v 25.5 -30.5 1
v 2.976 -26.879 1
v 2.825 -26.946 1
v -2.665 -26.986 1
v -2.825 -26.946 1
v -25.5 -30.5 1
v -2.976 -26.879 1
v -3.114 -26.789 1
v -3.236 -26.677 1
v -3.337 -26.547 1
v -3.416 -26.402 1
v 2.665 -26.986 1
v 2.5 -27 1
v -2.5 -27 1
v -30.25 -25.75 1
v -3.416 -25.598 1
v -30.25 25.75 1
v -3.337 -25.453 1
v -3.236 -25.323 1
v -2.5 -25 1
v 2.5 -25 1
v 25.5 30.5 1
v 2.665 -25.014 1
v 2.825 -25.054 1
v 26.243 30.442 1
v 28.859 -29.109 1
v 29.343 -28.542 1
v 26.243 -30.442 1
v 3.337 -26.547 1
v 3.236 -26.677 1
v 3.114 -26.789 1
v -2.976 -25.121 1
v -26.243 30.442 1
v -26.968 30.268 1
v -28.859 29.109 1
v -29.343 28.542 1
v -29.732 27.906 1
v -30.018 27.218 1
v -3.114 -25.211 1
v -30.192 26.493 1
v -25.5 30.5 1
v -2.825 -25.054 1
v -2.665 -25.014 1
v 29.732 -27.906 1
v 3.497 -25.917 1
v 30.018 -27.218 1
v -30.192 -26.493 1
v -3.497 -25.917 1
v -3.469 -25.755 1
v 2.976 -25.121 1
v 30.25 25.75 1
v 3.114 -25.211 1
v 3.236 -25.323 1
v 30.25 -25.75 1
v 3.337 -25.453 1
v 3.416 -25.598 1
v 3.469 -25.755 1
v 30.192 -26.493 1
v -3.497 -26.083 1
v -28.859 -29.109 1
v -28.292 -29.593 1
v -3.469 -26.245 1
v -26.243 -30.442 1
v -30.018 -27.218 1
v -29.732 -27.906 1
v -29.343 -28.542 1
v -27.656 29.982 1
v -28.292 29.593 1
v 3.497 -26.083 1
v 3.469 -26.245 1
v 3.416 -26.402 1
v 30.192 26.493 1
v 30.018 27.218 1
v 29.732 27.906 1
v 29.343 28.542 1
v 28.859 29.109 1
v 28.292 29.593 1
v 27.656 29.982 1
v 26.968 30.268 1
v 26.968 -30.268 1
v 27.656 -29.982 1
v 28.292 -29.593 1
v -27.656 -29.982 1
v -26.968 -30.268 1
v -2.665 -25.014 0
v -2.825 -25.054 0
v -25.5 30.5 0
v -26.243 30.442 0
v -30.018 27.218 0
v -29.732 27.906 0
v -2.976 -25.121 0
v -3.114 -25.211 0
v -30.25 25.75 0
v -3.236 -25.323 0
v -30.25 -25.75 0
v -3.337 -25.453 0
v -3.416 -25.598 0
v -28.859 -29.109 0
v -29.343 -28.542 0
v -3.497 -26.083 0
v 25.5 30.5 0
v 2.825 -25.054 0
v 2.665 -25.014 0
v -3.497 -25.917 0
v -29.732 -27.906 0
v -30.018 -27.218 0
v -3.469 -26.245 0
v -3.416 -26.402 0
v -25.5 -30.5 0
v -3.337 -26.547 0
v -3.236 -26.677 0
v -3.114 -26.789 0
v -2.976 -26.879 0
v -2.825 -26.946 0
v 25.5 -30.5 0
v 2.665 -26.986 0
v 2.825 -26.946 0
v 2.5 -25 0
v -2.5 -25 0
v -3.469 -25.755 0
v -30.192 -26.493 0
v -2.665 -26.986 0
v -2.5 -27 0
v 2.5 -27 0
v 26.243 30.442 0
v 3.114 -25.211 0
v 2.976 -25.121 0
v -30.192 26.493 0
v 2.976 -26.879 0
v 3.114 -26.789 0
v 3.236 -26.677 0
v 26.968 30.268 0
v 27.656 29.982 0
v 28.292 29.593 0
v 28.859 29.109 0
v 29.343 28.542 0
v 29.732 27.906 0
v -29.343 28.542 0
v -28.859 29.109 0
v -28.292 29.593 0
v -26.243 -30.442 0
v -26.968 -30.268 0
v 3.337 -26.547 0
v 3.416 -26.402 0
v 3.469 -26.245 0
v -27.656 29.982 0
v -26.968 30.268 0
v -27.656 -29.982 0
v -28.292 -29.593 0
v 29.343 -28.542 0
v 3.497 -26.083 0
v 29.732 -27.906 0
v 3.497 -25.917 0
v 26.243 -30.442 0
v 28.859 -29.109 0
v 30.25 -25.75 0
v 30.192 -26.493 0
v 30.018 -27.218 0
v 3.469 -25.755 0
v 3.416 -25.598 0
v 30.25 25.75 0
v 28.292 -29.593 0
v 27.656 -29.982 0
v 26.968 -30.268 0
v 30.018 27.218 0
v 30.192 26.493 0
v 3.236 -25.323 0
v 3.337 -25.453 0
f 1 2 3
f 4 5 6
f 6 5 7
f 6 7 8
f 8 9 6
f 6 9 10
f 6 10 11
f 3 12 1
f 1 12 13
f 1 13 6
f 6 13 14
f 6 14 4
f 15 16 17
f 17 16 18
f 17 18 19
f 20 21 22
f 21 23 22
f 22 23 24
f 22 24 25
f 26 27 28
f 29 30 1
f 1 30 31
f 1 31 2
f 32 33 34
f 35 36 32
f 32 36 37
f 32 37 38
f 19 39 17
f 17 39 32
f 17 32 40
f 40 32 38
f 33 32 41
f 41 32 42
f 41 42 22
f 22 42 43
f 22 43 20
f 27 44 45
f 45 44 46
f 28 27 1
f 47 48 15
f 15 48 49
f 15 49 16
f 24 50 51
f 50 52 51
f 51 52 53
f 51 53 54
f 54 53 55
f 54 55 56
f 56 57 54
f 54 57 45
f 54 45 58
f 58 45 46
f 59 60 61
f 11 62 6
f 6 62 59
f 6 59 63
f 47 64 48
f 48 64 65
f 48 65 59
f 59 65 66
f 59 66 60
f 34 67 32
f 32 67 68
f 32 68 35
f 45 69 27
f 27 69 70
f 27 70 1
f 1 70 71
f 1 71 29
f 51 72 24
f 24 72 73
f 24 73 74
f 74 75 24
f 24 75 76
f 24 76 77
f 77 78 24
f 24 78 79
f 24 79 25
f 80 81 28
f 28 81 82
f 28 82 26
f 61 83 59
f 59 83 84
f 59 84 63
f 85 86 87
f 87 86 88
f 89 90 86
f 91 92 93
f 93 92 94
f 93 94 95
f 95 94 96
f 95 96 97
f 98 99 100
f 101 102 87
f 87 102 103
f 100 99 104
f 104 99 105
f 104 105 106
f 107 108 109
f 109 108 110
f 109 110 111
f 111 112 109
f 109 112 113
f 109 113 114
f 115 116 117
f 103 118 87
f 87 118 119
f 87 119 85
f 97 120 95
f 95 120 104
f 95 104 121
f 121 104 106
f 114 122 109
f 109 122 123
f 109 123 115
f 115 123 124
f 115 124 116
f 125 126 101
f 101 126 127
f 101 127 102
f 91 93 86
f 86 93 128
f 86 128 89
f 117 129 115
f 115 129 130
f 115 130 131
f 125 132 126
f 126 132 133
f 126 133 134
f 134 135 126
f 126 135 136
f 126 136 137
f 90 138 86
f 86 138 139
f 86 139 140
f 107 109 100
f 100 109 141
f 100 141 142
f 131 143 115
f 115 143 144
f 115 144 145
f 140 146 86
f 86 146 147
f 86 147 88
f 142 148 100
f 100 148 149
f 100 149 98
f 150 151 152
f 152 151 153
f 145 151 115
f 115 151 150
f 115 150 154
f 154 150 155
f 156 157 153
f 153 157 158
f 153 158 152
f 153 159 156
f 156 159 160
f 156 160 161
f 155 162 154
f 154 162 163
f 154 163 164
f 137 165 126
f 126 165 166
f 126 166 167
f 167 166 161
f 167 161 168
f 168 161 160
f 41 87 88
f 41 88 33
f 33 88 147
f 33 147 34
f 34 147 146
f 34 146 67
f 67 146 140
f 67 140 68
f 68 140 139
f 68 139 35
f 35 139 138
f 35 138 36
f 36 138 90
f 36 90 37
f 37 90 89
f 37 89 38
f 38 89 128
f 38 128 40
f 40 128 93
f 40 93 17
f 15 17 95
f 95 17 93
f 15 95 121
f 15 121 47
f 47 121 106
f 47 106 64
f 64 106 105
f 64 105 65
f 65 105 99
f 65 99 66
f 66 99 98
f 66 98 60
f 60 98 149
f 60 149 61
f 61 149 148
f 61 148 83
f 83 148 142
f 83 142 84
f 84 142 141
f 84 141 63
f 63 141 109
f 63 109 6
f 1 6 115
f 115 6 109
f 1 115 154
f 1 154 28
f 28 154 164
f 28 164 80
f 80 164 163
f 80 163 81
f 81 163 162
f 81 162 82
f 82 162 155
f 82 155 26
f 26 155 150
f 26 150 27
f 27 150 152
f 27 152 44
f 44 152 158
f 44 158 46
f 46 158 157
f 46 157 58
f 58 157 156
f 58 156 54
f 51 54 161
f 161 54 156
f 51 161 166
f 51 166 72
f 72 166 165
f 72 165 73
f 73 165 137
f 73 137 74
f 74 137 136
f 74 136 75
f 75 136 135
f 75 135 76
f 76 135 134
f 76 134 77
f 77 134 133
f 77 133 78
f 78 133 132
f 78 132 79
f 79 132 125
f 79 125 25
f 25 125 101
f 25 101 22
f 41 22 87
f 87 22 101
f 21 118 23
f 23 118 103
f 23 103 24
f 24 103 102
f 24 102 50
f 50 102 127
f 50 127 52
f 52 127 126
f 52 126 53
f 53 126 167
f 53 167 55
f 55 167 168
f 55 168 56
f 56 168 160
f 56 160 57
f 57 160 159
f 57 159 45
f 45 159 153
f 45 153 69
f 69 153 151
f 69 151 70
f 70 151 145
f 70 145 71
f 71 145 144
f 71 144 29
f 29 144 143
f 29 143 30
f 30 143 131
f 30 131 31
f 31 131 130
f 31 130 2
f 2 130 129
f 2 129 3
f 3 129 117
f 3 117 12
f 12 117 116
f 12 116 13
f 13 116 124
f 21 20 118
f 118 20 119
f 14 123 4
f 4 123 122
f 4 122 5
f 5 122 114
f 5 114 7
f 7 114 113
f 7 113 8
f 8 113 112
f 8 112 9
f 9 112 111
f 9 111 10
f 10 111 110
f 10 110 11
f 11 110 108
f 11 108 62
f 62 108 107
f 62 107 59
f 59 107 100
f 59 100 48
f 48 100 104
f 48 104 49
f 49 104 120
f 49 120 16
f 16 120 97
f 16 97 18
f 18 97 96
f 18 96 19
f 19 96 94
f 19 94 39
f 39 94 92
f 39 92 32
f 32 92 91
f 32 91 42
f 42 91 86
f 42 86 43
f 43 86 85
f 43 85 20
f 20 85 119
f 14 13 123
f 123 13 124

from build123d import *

# Parameters (mm, degrees)
EXTRUDE_3_DEPTH = 1


with BuildPart() as part:
    # 草图1 → 凸台-拉伸3 (new body)
    with BuildSketch(Plane.XY):
        with BuildLine():
            Line((-30.25, 25.75), (-30.25, -25.75))
            ThreePointArc((-30.25, -25.75), (-28.858757211, -29.108757211), (-25.5, -30.5))
            Line((-25.5, -30.5), (25.5, -30.5))
            ThreePointArc((25.5, -30.5), (28.858757211, -29.108757211), (30.25, -25.75))
            Line((30.25, -25.75), (30.25, 25.75))
            ThreePointArc((30.25, 25.75), (28.858757211, 29.108757211), (25.5, 30.5))
            Line((25.5, 30.5), (-25.5, 30.5))
            ThreePointArc((-25.5, 30.5), (-28.858757211, 29.108757211), (-30.25, 25.75))
        make_face()
        with BuildLine():
            Line((-2.5, -25), (2.5, -25))
            ThreePointArc((2.5, -25), (3.5, -26), (2.5, -27))
            Line((2.5, -27), (-2.5, -27))
            ThreePointArc((-2.5, -27), (-3.5, -26), (-2.5, -25))
        make_face(mode=Mode.SUBTRACT)
    extrude(amount=EXTRUDE_3_DEPTH)


solid = part.part
